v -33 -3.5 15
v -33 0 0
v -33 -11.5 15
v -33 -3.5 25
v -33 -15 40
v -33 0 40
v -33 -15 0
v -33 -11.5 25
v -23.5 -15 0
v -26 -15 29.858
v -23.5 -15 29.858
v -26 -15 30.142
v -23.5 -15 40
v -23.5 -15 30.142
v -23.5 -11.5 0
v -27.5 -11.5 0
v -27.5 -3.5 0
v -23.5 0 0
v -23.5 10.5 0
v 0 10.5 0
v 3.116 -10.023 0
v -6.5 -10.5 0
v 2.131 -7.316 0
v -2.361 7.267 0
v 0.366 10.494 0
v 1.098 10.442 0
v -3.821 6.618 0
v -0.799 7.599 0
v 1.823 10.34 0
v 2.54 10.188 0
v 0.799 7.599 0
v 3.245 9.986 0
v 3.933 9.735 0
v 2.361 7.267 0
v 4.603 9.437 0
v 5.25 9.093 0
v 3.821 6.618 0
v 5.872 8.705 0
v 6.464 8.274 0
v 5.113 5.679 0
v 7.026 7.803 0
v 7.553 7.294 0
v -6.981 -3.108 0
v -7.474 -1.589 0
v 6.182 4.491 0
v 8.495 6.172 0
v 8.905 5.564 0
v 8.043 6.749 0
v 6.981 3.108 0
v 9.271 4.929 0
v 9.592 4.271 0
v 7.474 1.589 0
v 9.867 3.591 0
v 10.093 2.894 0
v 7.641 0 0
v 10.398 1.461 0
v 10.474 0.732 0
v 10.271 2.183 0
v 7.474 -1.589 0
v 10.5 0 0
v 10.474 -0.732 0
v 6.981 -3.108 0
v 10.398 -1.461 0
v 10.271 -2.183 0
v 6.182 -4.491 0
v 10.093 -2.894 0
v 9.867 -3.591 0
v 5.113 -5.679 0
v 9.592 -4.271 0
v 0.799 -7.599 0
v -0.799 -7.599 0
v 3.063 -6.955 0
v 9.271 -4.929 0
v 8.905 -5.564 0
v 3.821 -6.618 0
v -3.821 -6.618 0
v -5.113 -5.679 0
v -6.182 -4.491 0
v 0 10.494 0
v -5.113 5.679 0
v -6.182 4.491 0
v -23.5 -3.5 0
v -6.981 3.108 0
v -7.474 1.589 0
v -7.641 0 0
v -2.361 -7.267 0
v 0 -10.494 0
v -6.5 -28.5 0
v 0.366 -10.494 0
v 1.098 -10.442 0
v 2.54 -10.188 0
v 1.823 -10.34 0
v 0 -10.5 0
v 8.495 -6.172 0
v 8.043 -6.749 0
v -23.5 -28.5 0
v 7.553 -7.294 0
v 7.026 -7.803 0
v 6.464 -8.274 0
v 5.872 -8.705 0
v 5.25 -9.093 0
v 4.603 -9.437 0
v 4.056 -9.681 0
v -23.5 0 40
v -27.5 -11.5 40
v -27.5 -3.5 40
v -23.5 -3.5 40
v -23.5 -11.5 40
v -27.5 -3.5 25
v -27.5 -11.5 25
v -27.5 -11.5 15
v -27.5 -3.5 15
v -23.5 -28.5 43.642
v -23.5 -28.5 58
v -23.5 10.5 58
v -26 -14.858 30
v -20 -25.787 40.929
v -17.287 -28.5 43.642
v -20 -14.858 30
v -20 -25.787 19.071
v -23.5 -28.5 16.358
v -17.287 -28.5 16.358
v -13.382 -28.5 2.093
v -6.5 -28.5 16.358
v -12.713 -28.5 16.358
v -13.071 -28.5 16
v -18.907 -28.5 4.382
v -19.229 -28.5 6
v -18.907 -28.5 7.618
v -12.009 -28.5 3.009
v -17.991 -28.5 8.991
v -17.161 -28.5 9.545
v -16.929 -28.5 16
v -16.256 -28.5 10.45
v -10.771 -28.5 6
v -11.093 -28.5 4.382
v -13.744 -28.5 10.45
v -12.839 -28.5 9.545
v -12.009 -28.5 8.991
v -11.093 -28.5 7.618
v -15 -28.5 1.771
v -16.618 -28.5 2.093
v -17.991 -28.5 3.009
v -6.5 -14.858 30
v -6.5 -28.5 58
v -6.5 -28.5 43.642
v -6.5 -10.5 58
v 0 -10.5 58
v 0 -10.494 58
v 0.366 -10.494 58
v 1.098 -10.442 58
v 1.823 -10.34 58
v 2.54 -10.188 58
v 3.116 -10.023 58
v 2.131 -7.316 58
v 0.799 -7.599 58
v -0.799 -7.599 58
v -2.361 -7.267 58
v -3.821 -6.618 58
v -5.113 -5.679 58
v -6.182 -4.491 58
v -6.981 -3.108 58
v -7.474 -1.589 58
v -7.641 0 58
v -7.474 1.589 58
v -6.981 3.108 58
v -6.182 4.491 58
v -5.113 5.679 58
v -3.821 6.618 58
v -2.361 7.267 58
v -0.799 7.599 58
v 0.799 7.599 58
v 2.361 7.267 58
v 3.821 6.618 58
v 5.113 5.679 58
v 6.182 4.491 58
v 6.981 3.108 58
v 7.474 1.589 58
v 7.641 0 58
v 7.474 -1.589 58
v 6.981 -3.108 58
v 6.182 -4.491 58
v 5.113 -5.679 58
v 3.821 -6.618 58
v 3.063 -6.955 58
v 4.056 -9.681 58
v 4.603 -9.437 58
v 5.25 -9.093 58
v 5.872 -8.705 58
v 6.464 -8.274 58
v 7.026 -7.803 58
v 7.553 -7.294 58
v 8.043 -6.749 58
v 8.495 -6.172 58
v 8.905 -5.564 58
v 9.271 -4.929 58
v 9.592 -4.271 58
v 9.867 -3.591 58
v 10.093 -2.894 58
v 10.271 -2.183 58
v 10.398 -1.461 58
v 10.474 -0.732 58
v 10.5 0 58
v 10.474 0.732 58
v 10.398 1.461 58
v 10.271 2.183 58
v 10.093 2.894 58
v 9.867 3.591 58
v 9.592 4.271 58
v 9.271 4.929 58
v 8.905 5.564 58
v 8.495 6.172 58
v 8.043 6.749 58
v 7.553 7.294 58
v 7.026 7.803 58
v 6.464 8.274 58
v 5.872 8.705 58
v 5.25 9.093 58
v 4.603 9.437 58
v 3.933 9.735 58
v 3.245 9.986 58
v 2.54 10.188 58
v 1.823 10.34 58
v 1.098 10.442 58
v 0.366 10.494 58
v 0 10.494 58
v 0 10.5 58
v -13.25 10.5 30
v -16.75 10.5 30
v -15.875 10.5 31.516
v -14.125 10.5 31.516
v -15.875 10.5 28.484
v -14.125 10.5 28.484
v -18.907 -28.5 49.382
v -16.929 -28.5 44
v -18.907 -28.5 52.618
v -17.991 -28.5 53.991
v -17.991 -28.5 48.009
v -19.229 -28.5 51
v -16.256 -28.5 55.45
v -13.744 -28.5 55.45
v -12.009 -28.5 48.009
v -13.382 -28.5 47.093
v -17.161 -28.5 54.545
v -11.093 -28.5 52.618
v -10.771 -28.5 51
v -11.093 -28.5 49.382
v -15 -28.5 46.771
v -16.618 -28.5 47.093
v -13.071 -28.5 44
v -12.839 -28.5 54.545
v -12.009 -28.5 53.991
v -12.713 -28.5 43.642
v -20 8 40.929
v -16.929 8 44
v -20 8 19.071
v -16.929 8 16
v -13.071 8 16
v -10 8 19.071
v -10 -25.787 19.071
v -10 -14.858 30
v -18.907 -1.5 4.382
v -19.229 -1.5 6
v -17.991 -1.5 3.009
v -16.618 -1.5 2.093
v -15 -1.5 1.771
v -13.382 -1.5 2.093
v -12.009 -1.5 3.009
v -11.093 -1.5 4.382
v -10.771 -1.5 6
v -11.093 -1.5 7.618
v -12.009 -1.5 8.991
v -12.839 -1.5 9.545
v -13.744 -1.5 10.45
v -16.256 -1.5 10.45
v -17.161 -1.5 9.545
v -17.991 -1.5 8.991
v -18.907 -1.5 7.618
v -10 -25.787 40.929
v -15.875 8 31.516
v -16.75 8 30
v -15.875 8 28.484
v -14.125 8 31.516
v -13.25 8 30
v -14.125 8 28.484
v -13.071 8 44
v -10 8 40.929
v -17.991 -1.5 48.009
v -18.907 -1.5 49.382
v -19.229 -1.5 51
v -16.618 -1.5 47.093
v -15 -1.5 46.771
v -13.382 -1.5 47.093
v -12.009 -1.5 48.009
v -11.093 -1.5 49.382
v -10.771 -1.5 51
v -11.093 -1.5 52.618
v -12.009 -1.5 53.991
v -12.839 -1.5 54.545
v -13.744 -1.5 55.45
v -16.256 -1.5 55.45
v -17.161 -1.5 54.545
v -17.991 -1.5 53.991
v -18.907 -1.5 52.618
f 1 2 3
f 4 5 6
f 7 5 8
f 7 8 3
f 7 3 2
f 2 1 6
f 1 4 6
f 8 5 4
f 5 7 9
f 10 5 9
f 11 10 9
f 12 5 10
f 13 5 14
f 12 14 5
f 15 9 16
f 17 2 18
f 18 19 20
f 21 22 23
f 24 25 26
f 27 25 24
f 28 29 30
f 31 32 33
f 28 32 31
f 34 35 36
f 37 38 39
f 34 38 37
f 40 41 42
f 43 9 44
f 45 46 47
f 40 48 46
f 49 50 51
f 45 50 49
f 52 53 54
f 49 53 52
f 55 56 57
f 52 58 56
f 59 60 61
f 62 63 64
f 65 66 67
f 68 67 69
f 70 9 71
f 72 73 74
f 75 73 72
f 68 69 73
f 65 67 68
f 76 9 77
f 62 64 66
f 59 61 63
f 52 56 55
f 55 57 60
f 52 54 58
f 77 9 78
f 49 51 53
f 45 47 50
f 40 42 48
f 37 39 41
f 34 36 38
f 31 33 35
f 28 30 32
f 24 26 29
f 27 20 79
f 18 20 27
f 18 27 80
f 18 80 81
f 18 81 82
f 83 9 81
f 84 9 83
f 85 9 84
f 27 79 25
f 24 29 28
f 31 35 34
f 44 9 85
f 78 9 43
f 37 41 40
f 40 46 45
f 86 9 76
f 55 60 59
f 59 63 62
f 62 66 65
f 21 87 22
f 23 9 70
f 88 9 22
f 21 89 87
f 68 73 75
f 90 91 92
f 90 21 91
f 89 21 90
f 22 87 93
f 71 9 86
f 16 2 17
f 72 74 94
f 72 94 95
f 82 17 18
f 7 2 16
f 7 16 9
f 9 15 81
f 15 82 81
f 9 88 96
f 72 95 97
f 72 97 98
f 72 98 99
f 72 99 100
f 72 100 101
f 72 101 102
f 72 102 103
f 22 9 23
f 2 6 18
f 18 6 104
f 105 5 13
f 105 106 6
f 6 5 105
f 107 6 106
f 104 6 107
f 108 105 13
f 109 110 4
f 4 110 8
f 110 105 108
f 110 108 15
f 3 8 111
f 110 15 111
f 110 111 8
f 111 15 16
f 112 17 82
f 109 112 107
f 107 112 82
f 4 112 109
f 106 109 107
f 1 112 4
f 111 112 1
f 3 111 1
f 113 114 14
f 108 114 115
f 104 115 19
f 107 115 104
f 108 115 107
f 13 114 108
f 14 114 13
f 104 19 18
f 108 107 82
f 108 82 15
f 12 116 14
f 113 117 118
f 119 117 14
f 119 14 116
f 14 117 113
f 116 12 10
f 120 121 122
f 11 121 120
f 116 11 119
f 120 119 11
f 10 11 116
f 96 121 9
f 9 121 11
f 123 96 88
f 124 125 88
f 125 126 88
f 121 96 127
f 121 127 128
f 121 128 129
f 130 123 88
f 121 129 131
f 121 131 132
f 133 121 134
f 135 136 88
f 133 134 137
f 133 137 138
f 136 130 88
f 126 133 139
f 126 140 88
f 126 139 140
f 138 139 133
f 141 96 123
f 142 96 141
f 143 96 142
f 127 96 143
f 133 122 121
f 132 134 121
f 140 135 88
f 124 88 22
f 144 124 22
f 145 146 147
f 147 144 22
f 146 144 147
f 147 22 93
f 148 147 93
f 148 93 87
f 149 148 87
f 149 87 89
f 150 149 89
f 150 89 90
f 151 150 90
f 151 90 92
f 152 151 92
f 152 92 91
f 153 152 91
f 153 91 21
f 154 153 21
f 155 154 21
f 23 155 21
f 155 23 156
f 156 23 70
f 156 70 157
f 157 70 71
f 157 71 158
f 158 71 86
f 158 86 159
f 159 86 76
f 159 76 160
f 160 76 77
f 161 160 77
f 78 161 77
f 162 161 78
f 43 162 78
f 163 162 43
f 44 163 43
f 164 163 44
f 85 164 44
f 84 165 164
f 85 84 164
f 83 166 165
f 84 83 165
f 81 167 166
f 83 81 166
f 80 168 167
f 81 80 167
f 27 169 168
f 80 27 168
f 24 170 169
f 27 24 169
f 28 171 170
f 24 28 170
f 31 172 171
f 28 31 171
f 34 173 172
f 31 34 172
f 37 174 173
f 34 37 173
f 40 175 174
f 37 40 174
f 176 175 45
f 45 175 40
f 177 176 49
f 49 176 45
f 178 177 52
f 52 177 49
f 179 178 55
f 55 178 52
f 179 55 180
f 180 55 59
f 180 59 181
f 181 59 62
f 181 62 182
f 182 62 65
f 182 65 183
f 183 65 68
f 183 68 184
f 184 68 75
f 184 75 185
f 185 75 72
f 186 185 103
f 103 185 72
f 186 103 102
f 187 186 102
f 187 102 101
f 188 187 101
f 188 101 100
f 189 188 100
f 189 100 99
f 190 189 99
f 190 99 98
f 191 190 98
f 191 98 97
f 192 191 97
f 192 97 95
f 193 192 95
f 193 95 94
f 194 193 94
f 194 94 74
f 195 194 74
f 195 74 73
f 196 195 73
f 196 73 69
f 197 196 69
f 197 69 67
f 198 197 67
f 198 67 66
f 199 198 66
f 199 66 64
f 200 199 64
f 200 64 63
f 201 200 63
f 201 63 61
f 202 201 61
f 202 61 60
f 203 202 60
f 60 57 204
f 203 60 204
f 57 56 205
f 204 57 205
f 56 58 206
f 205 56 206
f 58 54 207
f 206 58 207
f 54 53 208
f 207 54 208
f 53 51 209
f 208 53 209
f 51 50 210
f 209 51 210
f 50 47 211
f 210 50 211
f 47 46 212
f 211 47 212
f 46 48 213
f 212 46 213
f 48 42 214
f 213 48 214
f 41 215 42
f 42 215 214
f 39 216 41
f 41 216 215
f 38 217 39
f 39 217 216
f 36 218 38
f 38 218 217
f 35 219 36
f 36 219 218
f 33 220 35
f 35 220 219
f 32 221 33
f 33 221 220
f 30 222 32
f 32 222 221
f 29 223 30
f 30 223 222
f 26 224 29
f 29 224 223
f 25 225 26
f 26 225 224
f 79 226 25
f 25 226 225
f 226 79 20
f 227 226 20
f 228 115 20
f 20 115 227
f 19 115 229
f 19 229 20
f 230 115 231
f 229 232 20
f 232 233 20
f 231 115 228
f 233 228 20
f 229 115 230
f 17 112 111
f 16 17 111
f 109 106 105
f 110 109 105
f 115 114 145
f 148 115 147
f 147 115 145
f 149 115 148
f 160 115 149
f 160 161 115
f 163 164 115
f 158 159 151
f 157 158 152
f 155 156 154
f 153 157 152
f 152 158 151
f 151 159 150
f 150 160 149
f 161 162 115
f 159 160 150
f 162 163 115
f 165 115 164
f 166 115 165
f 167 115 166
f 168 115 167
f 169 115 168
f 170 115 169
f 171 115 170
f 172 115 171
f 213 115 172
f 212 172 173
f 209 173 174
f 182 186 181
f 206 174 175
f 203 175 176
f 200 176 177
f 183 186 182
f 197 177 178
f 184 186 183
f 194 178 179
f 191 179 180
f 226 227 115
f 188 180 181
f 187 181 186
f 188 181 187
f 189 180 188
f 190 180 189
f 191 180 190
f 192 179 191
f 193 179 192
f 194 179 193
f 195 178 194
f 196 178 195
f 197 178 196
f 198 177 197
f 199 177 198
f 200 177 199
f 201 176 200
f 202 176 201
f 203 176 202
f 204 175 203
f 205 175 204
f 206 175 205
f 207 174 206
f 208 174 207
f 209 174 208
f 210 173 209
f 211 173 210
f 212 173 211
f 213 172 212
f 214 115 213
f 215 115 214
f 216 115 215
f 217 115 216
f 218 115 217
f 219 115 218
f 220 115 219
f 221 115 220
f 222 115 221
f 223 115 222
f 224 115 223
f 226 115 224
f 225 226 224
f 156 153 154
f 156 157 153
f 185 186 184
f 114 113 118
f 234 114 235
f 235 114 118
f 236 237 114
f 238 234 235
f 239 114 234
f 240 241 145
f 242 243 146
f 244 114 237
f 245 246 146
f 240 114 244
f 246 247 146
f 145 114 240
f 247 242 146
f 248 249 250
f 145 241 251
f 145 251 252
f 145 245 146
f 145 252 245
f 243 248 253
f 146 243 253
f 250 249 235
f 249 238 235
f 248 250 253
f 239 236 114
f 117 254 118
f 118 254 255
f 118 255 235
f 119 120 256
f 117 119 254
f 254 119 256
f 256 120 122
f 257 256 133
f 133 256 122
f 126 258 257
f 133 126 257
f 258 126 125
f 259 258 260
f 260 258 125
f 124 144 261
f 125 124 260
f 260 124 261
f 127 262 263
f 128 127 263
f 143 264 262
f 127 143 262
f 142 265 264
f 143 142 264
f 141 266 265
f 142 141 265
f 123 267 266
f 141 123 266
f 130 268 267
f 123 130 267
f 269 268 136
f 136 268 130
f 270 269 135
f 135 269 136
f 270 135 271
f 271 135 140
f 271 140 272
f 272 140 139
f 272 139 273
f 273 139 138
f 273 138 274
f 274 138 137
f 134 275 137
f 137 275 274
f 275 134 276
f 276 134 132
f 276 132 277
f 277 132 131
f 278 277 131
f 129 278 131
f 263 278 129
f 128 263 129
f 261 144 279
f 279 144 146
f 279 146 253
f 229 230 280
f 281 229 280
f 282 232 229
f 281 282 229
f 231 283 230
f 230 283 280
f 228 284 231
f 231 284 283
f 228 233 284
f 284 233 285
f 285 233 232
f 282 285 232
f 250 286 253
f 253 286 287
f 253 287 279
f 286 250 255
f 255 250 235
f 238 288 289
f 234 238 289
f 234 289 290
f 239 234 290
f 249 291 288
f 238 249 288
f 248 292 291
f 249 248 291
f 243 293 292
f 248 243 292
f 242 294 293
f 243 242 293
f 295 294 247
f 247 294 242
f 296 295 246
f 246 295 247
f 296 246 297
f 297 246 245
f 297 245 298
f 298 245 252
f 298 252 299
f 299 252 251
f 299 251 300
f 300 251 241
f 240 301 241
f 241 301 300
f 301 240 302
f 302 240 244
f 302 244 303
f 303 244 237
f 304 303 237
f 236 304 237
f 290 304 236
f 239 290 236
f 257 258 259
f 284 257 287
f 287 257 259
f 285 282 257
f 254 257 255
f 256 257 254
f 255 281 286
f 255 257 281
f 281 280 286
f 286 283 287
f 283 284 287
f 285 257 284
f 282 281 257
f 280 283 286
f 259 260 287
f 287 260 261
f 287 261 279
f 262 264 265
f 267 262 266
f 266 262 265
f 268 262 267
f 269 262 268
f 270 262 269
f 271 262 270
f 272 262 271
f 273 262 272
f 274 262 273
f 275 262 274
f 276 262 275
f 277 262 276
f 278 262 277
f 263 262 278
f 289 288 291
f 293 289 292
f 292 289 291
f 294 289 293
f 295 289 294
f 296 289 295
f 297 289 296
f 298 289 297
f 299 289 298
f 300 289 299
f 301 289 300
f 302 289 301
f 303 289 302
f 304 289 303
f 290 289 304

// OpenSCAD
// file: polyholes.scad
// MK2Clone r2
// based on Mendel90
//
// GNU GPL v2
// nop.head@gmail.com
// hydraraptor.blogspot.com
//
// See http://hydraraptor.blogspot.com/2011/02/polyholes.html
//
function sides(r) = max(round(4 *r),3);
function correctedRadius(r,n) = 0.1 + r / cos(180 / n);
function correctedDiameter(d) = 0.2 + d / cos(180 / sides(d / 2));

module polyCircle(r, center = false) {
    n = sides(r);
    circle(r = correctedRadius(r,n), $fn = n, center = center);
}

module poly_circle(r, center = false) {
	polyCircle(r, center);
}

module polyCylinder(r, h, center = false) {
    n = sides(r);
    cylinder(h = h, r = correctedRadius(r,n), $fn = n, center = center);
}

module poly_cylinder(r, h, center = false) {
	polyCylinder(r,h,center);
}

module polydCylinder(r, center = false) {
    n = sides(r);
    r = correctedRadius(r,n);
    cylinder(h = h, r = r, $fn = n, center = center);
    translate([0, -r, 0])
        cube([r, 2 * r, h]);
}

module poly_d_cylinder(r, center = false) {
	polydCylinder(r,center);
}
// file: bearing.scad
// PRUSA iteration3
// Bearing holders
// GNU GPL v3
// Josef Průša <iam@josefprusa.cz> and contributors
// http://www.reprap.org/wiki/Prusa_i3

use <polyholes.scad>

bearing_diameter = 15;

module horizontal_bearing_base(bearings=1){
 translate(v=[0,0,6]) cube(size = [24,8+bearings*25,12], center = true);	
}
module horizontal_bearing_holes(bearings=1){
 cutter_lenght = 10+bearings*25;
 one_holder_lenght = 8+25;
 holder_lenght = 8+bearings*25;
 
 // Main bearing cut
 difference(){
  translate(v=[0,0,12]) rotate(a=[90,0,0]) translate(v=[0,0,-cutter_lenght/2]) cylinder(h = cutter_lenght, r=bearing_diameter/2, $fn=50);
  // Bearing retainers
  translate(v=[0,1-holder_lenght/2,3]) cube(size = [24,6,8], center = true);
  translate(v=[0,-1+holder_lenght/2,3]) cube(size = [24,6,8], center = true);
 }
 
 // Ziptie cutouts
 ziptie_cut_ofset = 0;
 for ( i = [0 : bearings-1] ){
  // For easier positioning I move them by half of one 
  // bearing holder then add each bearign lenght and then center again
  translate(v=[0,-holder_lenght/2,0]) translate(v=[0,one_holder_lenght/2+i*25,0]) difference(){
   union(){
    translate(v=[0,2-6,12]) rotate(a=[90,0,0]) translate(v=[0,0,0]) cylinder(h = 4, r=12.5, $fn=50);
    translate(v=[0,2+6,12]) rotate(a=[90,0,0]) translate(v=[0,0,0]) cylinder(h = 4, r=12.5, $fn=50);
   }
   translate(v=[0,10,12]) rotate(a=[90,0,0]) translate(v=[0,0,0]) cylinder(h = 24, r=10, $fn=50);
  }
 }
}

module vert_ziptie_base(bearings=1){
   translate([-11.5,0,29])
   rotate([90,0,0])
   rotate([0,90,0])
   translate(v=[0,0,6]) cube(size = [21,8+bearings*25,18], center = true);	
}

module vert_ziptie_cutouts(bearings=1){
   cutter_lenght = 10+bearings*25;
   one_holder_lenght = 8+25;
   holder_lenght = 8+bearings*25;
   ziptie_cut_ofset = 0;

   translate([-12,0,29])
   rotate([90,0,0])
   rotate([0,90,0])
   union(){
 
   // Main bearing cut
   difference(){
      translate(v=[0,0,12]) rotate(a=[90,0,0]) translate(v=[0,0,-cutter_lenght/2]) cylinder(h = cutter_lenght, r=bearing_diameter/2, $fn=50);
      // Bearing retainers
      translate(v=[0,1-holder_lenght/2,3]) cube(size = [24,6,8], center = true);
      translate(v=[0,-1+holder_lenght/2,3]) cube(size = [24,6,8], center = true);
   }
 
   // Ziptie cutouts
   translate([0,0,-3]) scale([1,1,1.125])
      for ( i = [0 : bearings-1] ){
         // For easier positioning I move them by half of one 
         // bearing holder then add each bearing length and then center again
         translate(v=[0,-holder_lenght/2,0]) translate(v=[0,one_holder_lenght/2+i*25,0]) difference(){
         union(){
            translate(v=[0,2-6,12]) rotate(a=[90,0,0]) translate(v=[0,0,0]) cylinder(h = 4, r=12.5, $fn=50);
            translate(v=[0,2+6,12]) rotate(a=[90,0,0]) translate(v=[0,0,0]) cylinder(h = 4, r=12.5, $fn=50);
         }
         translate(v=[0,10,12]) rotate(a=[90,0,0]) translate(v=[0,0,0]) cylinder(h = 24, r=10, $fn=50);
      }
      }
}
 
}

module vertical_ziptie_bearing(){
   union(){
      // translate([-12,0,29])
      // rotate([90,0,0])
      // rotate([0,90,0])
      difference(){
         vert_ziptie_base(2);
         vert_ziptie_cutouts(2);
      }
   }
}

module horizontal_bearing_test(){
 difference(){
  horizontal_bearing_base(1);
  horizontal_bearing_holes(1);
 }
 translate(v=[30,0,0]) difference(){
  horizontal_bearing_base(2);
  horizontal_bearing_holes(2);
 }
 translate(v=[60,0,0]) difference(){
  horizontal_bearing_base(3);
  horizontal_bearing_holes(3);
 }
}



thinwall = 3;
bearing_size = bearing_diameter + 2 * thinwall;

module vertical_bearing_base(){
 translate(v=[-2-bearing_size/4,0,29]) cube(size = [4+bearing_size/2,bearing_size,58], center = true);
 cylinder(h = 58, r=bearing_size/2, $fn = 90);
}

module vertical_bearing_holes(){
  translate(v=[0,0,-1]) poly_cylinder(h = 62, r=bearing_diameter/2);
  rotate(a=[0,0,-70]) translate(v=[bearing_diameter/2-1,-0.5,-1]) cube(size = [thinwall*2,1,62]);

}

vertical_ziptie_bearing();
/*
translate([0,0,0])
difference(){
vertical_bearing_base();
vertical_bearing_holes();
}*/
// main file
// PRUSA iteration3
// X end prototype
// GNU GPL v3
// Josef Průša <iam@josefprusa.cz> and contributors
// http://www.reprap.org/wiki/Prusa_Mendel
// http://prusamendel.org

use <bearing.scad>
use <polyholes.scad>
rod_distance = 45;

module x_end_base(){
// Main block
height = 58;
translate(v=[-15,-9,height/2]) cube(size = [17,39,height], center = true);
// Bearing holder
 vertical_bearing_base();	





difference(){
//belt attachment
translate(v=[-28,-7.5,20]) cube(size = [10,15,40], center = true);
translate(v=[-25,-7.5,20]) cube(size = [5,8,45], center = true);
translate(v=[-25,-7.5,20]) cube(size = [118,8,10], center = true);
}
}



module x_end_holes(){
 vertical_bearing_holes();
// Belt hole
translate(v=[-1,0,0]){
// Stress relief
//translate(v=[-5.5-10+1.5,-10-1,30]) cube(size = [20,1,28], center = true);
translate(v=[-15,-29,30]) rotate([45,0,0]) cube(size = [20,20,20], center = true);
translate(v=[-5.5-10+1.5,10,30])  rotate(a=[90,0,0]) cylinder(h=10, r=1.75, center = true);
difference(){
	translate(v=[-5.5-10+1.5,-15,30]) cube(size = [10,46,28], center = true);
	

	

	// Nice edges

	translate(v=[-5.5-10+1.5,-10,30+23]) rotate([0,45,0]) cube(size = [10,46,28], center = true);
	translate(v=[-5.5-10+1.5,-10,30+23]) rotate([0,-45,0]) cube(size = [10,46,28], center = true);
	translate(v=[-5.5-10+1.5,-10,30-23]) rotate([0,45,0]) cube(size = [10,46,28], center = true);
	translate(v=[-5.5-10+1.5,-10,30-23]) rotate([0,-45,0]) cube(size = [10,46,28], center = true);

}
}

// Bottom pushfit rod
translate(v=[-15,-41.5,6]) rotate(a=[-90,0,0]) pushfit_rod(8.1,40);
// Top pushfit rod
translate(v=[-15,-41.5,rod_distance+6]) rotate(a=[-90,0,0]) pushfit_rod(8.1,40);

}


// Final prototype
module x_end_plain(){
 difference(){
  x_end_base();
  x_end_holes();
 }
}

x_end_plain();


module pushfit_rod(diameter,length){
 poly_cylinder(h = length, r=diameter/2);
 difference(){
 	translate(v=[0,-diameter/2.85,length/2]) rotate([0,0,45]) cube(size = [diameter/2,diameter/2,length], center = true);
 	translate(v=[0,-diameter/4-diameter/2-0.4,length/2]) rotate([0,0,0]) cube(size = [diameter,diameter/2,length], center = true);
 }
 //translate(v=[0,-diameter/2-2,length/2]) cube(size = [diameter,1,length], center = true);
}
